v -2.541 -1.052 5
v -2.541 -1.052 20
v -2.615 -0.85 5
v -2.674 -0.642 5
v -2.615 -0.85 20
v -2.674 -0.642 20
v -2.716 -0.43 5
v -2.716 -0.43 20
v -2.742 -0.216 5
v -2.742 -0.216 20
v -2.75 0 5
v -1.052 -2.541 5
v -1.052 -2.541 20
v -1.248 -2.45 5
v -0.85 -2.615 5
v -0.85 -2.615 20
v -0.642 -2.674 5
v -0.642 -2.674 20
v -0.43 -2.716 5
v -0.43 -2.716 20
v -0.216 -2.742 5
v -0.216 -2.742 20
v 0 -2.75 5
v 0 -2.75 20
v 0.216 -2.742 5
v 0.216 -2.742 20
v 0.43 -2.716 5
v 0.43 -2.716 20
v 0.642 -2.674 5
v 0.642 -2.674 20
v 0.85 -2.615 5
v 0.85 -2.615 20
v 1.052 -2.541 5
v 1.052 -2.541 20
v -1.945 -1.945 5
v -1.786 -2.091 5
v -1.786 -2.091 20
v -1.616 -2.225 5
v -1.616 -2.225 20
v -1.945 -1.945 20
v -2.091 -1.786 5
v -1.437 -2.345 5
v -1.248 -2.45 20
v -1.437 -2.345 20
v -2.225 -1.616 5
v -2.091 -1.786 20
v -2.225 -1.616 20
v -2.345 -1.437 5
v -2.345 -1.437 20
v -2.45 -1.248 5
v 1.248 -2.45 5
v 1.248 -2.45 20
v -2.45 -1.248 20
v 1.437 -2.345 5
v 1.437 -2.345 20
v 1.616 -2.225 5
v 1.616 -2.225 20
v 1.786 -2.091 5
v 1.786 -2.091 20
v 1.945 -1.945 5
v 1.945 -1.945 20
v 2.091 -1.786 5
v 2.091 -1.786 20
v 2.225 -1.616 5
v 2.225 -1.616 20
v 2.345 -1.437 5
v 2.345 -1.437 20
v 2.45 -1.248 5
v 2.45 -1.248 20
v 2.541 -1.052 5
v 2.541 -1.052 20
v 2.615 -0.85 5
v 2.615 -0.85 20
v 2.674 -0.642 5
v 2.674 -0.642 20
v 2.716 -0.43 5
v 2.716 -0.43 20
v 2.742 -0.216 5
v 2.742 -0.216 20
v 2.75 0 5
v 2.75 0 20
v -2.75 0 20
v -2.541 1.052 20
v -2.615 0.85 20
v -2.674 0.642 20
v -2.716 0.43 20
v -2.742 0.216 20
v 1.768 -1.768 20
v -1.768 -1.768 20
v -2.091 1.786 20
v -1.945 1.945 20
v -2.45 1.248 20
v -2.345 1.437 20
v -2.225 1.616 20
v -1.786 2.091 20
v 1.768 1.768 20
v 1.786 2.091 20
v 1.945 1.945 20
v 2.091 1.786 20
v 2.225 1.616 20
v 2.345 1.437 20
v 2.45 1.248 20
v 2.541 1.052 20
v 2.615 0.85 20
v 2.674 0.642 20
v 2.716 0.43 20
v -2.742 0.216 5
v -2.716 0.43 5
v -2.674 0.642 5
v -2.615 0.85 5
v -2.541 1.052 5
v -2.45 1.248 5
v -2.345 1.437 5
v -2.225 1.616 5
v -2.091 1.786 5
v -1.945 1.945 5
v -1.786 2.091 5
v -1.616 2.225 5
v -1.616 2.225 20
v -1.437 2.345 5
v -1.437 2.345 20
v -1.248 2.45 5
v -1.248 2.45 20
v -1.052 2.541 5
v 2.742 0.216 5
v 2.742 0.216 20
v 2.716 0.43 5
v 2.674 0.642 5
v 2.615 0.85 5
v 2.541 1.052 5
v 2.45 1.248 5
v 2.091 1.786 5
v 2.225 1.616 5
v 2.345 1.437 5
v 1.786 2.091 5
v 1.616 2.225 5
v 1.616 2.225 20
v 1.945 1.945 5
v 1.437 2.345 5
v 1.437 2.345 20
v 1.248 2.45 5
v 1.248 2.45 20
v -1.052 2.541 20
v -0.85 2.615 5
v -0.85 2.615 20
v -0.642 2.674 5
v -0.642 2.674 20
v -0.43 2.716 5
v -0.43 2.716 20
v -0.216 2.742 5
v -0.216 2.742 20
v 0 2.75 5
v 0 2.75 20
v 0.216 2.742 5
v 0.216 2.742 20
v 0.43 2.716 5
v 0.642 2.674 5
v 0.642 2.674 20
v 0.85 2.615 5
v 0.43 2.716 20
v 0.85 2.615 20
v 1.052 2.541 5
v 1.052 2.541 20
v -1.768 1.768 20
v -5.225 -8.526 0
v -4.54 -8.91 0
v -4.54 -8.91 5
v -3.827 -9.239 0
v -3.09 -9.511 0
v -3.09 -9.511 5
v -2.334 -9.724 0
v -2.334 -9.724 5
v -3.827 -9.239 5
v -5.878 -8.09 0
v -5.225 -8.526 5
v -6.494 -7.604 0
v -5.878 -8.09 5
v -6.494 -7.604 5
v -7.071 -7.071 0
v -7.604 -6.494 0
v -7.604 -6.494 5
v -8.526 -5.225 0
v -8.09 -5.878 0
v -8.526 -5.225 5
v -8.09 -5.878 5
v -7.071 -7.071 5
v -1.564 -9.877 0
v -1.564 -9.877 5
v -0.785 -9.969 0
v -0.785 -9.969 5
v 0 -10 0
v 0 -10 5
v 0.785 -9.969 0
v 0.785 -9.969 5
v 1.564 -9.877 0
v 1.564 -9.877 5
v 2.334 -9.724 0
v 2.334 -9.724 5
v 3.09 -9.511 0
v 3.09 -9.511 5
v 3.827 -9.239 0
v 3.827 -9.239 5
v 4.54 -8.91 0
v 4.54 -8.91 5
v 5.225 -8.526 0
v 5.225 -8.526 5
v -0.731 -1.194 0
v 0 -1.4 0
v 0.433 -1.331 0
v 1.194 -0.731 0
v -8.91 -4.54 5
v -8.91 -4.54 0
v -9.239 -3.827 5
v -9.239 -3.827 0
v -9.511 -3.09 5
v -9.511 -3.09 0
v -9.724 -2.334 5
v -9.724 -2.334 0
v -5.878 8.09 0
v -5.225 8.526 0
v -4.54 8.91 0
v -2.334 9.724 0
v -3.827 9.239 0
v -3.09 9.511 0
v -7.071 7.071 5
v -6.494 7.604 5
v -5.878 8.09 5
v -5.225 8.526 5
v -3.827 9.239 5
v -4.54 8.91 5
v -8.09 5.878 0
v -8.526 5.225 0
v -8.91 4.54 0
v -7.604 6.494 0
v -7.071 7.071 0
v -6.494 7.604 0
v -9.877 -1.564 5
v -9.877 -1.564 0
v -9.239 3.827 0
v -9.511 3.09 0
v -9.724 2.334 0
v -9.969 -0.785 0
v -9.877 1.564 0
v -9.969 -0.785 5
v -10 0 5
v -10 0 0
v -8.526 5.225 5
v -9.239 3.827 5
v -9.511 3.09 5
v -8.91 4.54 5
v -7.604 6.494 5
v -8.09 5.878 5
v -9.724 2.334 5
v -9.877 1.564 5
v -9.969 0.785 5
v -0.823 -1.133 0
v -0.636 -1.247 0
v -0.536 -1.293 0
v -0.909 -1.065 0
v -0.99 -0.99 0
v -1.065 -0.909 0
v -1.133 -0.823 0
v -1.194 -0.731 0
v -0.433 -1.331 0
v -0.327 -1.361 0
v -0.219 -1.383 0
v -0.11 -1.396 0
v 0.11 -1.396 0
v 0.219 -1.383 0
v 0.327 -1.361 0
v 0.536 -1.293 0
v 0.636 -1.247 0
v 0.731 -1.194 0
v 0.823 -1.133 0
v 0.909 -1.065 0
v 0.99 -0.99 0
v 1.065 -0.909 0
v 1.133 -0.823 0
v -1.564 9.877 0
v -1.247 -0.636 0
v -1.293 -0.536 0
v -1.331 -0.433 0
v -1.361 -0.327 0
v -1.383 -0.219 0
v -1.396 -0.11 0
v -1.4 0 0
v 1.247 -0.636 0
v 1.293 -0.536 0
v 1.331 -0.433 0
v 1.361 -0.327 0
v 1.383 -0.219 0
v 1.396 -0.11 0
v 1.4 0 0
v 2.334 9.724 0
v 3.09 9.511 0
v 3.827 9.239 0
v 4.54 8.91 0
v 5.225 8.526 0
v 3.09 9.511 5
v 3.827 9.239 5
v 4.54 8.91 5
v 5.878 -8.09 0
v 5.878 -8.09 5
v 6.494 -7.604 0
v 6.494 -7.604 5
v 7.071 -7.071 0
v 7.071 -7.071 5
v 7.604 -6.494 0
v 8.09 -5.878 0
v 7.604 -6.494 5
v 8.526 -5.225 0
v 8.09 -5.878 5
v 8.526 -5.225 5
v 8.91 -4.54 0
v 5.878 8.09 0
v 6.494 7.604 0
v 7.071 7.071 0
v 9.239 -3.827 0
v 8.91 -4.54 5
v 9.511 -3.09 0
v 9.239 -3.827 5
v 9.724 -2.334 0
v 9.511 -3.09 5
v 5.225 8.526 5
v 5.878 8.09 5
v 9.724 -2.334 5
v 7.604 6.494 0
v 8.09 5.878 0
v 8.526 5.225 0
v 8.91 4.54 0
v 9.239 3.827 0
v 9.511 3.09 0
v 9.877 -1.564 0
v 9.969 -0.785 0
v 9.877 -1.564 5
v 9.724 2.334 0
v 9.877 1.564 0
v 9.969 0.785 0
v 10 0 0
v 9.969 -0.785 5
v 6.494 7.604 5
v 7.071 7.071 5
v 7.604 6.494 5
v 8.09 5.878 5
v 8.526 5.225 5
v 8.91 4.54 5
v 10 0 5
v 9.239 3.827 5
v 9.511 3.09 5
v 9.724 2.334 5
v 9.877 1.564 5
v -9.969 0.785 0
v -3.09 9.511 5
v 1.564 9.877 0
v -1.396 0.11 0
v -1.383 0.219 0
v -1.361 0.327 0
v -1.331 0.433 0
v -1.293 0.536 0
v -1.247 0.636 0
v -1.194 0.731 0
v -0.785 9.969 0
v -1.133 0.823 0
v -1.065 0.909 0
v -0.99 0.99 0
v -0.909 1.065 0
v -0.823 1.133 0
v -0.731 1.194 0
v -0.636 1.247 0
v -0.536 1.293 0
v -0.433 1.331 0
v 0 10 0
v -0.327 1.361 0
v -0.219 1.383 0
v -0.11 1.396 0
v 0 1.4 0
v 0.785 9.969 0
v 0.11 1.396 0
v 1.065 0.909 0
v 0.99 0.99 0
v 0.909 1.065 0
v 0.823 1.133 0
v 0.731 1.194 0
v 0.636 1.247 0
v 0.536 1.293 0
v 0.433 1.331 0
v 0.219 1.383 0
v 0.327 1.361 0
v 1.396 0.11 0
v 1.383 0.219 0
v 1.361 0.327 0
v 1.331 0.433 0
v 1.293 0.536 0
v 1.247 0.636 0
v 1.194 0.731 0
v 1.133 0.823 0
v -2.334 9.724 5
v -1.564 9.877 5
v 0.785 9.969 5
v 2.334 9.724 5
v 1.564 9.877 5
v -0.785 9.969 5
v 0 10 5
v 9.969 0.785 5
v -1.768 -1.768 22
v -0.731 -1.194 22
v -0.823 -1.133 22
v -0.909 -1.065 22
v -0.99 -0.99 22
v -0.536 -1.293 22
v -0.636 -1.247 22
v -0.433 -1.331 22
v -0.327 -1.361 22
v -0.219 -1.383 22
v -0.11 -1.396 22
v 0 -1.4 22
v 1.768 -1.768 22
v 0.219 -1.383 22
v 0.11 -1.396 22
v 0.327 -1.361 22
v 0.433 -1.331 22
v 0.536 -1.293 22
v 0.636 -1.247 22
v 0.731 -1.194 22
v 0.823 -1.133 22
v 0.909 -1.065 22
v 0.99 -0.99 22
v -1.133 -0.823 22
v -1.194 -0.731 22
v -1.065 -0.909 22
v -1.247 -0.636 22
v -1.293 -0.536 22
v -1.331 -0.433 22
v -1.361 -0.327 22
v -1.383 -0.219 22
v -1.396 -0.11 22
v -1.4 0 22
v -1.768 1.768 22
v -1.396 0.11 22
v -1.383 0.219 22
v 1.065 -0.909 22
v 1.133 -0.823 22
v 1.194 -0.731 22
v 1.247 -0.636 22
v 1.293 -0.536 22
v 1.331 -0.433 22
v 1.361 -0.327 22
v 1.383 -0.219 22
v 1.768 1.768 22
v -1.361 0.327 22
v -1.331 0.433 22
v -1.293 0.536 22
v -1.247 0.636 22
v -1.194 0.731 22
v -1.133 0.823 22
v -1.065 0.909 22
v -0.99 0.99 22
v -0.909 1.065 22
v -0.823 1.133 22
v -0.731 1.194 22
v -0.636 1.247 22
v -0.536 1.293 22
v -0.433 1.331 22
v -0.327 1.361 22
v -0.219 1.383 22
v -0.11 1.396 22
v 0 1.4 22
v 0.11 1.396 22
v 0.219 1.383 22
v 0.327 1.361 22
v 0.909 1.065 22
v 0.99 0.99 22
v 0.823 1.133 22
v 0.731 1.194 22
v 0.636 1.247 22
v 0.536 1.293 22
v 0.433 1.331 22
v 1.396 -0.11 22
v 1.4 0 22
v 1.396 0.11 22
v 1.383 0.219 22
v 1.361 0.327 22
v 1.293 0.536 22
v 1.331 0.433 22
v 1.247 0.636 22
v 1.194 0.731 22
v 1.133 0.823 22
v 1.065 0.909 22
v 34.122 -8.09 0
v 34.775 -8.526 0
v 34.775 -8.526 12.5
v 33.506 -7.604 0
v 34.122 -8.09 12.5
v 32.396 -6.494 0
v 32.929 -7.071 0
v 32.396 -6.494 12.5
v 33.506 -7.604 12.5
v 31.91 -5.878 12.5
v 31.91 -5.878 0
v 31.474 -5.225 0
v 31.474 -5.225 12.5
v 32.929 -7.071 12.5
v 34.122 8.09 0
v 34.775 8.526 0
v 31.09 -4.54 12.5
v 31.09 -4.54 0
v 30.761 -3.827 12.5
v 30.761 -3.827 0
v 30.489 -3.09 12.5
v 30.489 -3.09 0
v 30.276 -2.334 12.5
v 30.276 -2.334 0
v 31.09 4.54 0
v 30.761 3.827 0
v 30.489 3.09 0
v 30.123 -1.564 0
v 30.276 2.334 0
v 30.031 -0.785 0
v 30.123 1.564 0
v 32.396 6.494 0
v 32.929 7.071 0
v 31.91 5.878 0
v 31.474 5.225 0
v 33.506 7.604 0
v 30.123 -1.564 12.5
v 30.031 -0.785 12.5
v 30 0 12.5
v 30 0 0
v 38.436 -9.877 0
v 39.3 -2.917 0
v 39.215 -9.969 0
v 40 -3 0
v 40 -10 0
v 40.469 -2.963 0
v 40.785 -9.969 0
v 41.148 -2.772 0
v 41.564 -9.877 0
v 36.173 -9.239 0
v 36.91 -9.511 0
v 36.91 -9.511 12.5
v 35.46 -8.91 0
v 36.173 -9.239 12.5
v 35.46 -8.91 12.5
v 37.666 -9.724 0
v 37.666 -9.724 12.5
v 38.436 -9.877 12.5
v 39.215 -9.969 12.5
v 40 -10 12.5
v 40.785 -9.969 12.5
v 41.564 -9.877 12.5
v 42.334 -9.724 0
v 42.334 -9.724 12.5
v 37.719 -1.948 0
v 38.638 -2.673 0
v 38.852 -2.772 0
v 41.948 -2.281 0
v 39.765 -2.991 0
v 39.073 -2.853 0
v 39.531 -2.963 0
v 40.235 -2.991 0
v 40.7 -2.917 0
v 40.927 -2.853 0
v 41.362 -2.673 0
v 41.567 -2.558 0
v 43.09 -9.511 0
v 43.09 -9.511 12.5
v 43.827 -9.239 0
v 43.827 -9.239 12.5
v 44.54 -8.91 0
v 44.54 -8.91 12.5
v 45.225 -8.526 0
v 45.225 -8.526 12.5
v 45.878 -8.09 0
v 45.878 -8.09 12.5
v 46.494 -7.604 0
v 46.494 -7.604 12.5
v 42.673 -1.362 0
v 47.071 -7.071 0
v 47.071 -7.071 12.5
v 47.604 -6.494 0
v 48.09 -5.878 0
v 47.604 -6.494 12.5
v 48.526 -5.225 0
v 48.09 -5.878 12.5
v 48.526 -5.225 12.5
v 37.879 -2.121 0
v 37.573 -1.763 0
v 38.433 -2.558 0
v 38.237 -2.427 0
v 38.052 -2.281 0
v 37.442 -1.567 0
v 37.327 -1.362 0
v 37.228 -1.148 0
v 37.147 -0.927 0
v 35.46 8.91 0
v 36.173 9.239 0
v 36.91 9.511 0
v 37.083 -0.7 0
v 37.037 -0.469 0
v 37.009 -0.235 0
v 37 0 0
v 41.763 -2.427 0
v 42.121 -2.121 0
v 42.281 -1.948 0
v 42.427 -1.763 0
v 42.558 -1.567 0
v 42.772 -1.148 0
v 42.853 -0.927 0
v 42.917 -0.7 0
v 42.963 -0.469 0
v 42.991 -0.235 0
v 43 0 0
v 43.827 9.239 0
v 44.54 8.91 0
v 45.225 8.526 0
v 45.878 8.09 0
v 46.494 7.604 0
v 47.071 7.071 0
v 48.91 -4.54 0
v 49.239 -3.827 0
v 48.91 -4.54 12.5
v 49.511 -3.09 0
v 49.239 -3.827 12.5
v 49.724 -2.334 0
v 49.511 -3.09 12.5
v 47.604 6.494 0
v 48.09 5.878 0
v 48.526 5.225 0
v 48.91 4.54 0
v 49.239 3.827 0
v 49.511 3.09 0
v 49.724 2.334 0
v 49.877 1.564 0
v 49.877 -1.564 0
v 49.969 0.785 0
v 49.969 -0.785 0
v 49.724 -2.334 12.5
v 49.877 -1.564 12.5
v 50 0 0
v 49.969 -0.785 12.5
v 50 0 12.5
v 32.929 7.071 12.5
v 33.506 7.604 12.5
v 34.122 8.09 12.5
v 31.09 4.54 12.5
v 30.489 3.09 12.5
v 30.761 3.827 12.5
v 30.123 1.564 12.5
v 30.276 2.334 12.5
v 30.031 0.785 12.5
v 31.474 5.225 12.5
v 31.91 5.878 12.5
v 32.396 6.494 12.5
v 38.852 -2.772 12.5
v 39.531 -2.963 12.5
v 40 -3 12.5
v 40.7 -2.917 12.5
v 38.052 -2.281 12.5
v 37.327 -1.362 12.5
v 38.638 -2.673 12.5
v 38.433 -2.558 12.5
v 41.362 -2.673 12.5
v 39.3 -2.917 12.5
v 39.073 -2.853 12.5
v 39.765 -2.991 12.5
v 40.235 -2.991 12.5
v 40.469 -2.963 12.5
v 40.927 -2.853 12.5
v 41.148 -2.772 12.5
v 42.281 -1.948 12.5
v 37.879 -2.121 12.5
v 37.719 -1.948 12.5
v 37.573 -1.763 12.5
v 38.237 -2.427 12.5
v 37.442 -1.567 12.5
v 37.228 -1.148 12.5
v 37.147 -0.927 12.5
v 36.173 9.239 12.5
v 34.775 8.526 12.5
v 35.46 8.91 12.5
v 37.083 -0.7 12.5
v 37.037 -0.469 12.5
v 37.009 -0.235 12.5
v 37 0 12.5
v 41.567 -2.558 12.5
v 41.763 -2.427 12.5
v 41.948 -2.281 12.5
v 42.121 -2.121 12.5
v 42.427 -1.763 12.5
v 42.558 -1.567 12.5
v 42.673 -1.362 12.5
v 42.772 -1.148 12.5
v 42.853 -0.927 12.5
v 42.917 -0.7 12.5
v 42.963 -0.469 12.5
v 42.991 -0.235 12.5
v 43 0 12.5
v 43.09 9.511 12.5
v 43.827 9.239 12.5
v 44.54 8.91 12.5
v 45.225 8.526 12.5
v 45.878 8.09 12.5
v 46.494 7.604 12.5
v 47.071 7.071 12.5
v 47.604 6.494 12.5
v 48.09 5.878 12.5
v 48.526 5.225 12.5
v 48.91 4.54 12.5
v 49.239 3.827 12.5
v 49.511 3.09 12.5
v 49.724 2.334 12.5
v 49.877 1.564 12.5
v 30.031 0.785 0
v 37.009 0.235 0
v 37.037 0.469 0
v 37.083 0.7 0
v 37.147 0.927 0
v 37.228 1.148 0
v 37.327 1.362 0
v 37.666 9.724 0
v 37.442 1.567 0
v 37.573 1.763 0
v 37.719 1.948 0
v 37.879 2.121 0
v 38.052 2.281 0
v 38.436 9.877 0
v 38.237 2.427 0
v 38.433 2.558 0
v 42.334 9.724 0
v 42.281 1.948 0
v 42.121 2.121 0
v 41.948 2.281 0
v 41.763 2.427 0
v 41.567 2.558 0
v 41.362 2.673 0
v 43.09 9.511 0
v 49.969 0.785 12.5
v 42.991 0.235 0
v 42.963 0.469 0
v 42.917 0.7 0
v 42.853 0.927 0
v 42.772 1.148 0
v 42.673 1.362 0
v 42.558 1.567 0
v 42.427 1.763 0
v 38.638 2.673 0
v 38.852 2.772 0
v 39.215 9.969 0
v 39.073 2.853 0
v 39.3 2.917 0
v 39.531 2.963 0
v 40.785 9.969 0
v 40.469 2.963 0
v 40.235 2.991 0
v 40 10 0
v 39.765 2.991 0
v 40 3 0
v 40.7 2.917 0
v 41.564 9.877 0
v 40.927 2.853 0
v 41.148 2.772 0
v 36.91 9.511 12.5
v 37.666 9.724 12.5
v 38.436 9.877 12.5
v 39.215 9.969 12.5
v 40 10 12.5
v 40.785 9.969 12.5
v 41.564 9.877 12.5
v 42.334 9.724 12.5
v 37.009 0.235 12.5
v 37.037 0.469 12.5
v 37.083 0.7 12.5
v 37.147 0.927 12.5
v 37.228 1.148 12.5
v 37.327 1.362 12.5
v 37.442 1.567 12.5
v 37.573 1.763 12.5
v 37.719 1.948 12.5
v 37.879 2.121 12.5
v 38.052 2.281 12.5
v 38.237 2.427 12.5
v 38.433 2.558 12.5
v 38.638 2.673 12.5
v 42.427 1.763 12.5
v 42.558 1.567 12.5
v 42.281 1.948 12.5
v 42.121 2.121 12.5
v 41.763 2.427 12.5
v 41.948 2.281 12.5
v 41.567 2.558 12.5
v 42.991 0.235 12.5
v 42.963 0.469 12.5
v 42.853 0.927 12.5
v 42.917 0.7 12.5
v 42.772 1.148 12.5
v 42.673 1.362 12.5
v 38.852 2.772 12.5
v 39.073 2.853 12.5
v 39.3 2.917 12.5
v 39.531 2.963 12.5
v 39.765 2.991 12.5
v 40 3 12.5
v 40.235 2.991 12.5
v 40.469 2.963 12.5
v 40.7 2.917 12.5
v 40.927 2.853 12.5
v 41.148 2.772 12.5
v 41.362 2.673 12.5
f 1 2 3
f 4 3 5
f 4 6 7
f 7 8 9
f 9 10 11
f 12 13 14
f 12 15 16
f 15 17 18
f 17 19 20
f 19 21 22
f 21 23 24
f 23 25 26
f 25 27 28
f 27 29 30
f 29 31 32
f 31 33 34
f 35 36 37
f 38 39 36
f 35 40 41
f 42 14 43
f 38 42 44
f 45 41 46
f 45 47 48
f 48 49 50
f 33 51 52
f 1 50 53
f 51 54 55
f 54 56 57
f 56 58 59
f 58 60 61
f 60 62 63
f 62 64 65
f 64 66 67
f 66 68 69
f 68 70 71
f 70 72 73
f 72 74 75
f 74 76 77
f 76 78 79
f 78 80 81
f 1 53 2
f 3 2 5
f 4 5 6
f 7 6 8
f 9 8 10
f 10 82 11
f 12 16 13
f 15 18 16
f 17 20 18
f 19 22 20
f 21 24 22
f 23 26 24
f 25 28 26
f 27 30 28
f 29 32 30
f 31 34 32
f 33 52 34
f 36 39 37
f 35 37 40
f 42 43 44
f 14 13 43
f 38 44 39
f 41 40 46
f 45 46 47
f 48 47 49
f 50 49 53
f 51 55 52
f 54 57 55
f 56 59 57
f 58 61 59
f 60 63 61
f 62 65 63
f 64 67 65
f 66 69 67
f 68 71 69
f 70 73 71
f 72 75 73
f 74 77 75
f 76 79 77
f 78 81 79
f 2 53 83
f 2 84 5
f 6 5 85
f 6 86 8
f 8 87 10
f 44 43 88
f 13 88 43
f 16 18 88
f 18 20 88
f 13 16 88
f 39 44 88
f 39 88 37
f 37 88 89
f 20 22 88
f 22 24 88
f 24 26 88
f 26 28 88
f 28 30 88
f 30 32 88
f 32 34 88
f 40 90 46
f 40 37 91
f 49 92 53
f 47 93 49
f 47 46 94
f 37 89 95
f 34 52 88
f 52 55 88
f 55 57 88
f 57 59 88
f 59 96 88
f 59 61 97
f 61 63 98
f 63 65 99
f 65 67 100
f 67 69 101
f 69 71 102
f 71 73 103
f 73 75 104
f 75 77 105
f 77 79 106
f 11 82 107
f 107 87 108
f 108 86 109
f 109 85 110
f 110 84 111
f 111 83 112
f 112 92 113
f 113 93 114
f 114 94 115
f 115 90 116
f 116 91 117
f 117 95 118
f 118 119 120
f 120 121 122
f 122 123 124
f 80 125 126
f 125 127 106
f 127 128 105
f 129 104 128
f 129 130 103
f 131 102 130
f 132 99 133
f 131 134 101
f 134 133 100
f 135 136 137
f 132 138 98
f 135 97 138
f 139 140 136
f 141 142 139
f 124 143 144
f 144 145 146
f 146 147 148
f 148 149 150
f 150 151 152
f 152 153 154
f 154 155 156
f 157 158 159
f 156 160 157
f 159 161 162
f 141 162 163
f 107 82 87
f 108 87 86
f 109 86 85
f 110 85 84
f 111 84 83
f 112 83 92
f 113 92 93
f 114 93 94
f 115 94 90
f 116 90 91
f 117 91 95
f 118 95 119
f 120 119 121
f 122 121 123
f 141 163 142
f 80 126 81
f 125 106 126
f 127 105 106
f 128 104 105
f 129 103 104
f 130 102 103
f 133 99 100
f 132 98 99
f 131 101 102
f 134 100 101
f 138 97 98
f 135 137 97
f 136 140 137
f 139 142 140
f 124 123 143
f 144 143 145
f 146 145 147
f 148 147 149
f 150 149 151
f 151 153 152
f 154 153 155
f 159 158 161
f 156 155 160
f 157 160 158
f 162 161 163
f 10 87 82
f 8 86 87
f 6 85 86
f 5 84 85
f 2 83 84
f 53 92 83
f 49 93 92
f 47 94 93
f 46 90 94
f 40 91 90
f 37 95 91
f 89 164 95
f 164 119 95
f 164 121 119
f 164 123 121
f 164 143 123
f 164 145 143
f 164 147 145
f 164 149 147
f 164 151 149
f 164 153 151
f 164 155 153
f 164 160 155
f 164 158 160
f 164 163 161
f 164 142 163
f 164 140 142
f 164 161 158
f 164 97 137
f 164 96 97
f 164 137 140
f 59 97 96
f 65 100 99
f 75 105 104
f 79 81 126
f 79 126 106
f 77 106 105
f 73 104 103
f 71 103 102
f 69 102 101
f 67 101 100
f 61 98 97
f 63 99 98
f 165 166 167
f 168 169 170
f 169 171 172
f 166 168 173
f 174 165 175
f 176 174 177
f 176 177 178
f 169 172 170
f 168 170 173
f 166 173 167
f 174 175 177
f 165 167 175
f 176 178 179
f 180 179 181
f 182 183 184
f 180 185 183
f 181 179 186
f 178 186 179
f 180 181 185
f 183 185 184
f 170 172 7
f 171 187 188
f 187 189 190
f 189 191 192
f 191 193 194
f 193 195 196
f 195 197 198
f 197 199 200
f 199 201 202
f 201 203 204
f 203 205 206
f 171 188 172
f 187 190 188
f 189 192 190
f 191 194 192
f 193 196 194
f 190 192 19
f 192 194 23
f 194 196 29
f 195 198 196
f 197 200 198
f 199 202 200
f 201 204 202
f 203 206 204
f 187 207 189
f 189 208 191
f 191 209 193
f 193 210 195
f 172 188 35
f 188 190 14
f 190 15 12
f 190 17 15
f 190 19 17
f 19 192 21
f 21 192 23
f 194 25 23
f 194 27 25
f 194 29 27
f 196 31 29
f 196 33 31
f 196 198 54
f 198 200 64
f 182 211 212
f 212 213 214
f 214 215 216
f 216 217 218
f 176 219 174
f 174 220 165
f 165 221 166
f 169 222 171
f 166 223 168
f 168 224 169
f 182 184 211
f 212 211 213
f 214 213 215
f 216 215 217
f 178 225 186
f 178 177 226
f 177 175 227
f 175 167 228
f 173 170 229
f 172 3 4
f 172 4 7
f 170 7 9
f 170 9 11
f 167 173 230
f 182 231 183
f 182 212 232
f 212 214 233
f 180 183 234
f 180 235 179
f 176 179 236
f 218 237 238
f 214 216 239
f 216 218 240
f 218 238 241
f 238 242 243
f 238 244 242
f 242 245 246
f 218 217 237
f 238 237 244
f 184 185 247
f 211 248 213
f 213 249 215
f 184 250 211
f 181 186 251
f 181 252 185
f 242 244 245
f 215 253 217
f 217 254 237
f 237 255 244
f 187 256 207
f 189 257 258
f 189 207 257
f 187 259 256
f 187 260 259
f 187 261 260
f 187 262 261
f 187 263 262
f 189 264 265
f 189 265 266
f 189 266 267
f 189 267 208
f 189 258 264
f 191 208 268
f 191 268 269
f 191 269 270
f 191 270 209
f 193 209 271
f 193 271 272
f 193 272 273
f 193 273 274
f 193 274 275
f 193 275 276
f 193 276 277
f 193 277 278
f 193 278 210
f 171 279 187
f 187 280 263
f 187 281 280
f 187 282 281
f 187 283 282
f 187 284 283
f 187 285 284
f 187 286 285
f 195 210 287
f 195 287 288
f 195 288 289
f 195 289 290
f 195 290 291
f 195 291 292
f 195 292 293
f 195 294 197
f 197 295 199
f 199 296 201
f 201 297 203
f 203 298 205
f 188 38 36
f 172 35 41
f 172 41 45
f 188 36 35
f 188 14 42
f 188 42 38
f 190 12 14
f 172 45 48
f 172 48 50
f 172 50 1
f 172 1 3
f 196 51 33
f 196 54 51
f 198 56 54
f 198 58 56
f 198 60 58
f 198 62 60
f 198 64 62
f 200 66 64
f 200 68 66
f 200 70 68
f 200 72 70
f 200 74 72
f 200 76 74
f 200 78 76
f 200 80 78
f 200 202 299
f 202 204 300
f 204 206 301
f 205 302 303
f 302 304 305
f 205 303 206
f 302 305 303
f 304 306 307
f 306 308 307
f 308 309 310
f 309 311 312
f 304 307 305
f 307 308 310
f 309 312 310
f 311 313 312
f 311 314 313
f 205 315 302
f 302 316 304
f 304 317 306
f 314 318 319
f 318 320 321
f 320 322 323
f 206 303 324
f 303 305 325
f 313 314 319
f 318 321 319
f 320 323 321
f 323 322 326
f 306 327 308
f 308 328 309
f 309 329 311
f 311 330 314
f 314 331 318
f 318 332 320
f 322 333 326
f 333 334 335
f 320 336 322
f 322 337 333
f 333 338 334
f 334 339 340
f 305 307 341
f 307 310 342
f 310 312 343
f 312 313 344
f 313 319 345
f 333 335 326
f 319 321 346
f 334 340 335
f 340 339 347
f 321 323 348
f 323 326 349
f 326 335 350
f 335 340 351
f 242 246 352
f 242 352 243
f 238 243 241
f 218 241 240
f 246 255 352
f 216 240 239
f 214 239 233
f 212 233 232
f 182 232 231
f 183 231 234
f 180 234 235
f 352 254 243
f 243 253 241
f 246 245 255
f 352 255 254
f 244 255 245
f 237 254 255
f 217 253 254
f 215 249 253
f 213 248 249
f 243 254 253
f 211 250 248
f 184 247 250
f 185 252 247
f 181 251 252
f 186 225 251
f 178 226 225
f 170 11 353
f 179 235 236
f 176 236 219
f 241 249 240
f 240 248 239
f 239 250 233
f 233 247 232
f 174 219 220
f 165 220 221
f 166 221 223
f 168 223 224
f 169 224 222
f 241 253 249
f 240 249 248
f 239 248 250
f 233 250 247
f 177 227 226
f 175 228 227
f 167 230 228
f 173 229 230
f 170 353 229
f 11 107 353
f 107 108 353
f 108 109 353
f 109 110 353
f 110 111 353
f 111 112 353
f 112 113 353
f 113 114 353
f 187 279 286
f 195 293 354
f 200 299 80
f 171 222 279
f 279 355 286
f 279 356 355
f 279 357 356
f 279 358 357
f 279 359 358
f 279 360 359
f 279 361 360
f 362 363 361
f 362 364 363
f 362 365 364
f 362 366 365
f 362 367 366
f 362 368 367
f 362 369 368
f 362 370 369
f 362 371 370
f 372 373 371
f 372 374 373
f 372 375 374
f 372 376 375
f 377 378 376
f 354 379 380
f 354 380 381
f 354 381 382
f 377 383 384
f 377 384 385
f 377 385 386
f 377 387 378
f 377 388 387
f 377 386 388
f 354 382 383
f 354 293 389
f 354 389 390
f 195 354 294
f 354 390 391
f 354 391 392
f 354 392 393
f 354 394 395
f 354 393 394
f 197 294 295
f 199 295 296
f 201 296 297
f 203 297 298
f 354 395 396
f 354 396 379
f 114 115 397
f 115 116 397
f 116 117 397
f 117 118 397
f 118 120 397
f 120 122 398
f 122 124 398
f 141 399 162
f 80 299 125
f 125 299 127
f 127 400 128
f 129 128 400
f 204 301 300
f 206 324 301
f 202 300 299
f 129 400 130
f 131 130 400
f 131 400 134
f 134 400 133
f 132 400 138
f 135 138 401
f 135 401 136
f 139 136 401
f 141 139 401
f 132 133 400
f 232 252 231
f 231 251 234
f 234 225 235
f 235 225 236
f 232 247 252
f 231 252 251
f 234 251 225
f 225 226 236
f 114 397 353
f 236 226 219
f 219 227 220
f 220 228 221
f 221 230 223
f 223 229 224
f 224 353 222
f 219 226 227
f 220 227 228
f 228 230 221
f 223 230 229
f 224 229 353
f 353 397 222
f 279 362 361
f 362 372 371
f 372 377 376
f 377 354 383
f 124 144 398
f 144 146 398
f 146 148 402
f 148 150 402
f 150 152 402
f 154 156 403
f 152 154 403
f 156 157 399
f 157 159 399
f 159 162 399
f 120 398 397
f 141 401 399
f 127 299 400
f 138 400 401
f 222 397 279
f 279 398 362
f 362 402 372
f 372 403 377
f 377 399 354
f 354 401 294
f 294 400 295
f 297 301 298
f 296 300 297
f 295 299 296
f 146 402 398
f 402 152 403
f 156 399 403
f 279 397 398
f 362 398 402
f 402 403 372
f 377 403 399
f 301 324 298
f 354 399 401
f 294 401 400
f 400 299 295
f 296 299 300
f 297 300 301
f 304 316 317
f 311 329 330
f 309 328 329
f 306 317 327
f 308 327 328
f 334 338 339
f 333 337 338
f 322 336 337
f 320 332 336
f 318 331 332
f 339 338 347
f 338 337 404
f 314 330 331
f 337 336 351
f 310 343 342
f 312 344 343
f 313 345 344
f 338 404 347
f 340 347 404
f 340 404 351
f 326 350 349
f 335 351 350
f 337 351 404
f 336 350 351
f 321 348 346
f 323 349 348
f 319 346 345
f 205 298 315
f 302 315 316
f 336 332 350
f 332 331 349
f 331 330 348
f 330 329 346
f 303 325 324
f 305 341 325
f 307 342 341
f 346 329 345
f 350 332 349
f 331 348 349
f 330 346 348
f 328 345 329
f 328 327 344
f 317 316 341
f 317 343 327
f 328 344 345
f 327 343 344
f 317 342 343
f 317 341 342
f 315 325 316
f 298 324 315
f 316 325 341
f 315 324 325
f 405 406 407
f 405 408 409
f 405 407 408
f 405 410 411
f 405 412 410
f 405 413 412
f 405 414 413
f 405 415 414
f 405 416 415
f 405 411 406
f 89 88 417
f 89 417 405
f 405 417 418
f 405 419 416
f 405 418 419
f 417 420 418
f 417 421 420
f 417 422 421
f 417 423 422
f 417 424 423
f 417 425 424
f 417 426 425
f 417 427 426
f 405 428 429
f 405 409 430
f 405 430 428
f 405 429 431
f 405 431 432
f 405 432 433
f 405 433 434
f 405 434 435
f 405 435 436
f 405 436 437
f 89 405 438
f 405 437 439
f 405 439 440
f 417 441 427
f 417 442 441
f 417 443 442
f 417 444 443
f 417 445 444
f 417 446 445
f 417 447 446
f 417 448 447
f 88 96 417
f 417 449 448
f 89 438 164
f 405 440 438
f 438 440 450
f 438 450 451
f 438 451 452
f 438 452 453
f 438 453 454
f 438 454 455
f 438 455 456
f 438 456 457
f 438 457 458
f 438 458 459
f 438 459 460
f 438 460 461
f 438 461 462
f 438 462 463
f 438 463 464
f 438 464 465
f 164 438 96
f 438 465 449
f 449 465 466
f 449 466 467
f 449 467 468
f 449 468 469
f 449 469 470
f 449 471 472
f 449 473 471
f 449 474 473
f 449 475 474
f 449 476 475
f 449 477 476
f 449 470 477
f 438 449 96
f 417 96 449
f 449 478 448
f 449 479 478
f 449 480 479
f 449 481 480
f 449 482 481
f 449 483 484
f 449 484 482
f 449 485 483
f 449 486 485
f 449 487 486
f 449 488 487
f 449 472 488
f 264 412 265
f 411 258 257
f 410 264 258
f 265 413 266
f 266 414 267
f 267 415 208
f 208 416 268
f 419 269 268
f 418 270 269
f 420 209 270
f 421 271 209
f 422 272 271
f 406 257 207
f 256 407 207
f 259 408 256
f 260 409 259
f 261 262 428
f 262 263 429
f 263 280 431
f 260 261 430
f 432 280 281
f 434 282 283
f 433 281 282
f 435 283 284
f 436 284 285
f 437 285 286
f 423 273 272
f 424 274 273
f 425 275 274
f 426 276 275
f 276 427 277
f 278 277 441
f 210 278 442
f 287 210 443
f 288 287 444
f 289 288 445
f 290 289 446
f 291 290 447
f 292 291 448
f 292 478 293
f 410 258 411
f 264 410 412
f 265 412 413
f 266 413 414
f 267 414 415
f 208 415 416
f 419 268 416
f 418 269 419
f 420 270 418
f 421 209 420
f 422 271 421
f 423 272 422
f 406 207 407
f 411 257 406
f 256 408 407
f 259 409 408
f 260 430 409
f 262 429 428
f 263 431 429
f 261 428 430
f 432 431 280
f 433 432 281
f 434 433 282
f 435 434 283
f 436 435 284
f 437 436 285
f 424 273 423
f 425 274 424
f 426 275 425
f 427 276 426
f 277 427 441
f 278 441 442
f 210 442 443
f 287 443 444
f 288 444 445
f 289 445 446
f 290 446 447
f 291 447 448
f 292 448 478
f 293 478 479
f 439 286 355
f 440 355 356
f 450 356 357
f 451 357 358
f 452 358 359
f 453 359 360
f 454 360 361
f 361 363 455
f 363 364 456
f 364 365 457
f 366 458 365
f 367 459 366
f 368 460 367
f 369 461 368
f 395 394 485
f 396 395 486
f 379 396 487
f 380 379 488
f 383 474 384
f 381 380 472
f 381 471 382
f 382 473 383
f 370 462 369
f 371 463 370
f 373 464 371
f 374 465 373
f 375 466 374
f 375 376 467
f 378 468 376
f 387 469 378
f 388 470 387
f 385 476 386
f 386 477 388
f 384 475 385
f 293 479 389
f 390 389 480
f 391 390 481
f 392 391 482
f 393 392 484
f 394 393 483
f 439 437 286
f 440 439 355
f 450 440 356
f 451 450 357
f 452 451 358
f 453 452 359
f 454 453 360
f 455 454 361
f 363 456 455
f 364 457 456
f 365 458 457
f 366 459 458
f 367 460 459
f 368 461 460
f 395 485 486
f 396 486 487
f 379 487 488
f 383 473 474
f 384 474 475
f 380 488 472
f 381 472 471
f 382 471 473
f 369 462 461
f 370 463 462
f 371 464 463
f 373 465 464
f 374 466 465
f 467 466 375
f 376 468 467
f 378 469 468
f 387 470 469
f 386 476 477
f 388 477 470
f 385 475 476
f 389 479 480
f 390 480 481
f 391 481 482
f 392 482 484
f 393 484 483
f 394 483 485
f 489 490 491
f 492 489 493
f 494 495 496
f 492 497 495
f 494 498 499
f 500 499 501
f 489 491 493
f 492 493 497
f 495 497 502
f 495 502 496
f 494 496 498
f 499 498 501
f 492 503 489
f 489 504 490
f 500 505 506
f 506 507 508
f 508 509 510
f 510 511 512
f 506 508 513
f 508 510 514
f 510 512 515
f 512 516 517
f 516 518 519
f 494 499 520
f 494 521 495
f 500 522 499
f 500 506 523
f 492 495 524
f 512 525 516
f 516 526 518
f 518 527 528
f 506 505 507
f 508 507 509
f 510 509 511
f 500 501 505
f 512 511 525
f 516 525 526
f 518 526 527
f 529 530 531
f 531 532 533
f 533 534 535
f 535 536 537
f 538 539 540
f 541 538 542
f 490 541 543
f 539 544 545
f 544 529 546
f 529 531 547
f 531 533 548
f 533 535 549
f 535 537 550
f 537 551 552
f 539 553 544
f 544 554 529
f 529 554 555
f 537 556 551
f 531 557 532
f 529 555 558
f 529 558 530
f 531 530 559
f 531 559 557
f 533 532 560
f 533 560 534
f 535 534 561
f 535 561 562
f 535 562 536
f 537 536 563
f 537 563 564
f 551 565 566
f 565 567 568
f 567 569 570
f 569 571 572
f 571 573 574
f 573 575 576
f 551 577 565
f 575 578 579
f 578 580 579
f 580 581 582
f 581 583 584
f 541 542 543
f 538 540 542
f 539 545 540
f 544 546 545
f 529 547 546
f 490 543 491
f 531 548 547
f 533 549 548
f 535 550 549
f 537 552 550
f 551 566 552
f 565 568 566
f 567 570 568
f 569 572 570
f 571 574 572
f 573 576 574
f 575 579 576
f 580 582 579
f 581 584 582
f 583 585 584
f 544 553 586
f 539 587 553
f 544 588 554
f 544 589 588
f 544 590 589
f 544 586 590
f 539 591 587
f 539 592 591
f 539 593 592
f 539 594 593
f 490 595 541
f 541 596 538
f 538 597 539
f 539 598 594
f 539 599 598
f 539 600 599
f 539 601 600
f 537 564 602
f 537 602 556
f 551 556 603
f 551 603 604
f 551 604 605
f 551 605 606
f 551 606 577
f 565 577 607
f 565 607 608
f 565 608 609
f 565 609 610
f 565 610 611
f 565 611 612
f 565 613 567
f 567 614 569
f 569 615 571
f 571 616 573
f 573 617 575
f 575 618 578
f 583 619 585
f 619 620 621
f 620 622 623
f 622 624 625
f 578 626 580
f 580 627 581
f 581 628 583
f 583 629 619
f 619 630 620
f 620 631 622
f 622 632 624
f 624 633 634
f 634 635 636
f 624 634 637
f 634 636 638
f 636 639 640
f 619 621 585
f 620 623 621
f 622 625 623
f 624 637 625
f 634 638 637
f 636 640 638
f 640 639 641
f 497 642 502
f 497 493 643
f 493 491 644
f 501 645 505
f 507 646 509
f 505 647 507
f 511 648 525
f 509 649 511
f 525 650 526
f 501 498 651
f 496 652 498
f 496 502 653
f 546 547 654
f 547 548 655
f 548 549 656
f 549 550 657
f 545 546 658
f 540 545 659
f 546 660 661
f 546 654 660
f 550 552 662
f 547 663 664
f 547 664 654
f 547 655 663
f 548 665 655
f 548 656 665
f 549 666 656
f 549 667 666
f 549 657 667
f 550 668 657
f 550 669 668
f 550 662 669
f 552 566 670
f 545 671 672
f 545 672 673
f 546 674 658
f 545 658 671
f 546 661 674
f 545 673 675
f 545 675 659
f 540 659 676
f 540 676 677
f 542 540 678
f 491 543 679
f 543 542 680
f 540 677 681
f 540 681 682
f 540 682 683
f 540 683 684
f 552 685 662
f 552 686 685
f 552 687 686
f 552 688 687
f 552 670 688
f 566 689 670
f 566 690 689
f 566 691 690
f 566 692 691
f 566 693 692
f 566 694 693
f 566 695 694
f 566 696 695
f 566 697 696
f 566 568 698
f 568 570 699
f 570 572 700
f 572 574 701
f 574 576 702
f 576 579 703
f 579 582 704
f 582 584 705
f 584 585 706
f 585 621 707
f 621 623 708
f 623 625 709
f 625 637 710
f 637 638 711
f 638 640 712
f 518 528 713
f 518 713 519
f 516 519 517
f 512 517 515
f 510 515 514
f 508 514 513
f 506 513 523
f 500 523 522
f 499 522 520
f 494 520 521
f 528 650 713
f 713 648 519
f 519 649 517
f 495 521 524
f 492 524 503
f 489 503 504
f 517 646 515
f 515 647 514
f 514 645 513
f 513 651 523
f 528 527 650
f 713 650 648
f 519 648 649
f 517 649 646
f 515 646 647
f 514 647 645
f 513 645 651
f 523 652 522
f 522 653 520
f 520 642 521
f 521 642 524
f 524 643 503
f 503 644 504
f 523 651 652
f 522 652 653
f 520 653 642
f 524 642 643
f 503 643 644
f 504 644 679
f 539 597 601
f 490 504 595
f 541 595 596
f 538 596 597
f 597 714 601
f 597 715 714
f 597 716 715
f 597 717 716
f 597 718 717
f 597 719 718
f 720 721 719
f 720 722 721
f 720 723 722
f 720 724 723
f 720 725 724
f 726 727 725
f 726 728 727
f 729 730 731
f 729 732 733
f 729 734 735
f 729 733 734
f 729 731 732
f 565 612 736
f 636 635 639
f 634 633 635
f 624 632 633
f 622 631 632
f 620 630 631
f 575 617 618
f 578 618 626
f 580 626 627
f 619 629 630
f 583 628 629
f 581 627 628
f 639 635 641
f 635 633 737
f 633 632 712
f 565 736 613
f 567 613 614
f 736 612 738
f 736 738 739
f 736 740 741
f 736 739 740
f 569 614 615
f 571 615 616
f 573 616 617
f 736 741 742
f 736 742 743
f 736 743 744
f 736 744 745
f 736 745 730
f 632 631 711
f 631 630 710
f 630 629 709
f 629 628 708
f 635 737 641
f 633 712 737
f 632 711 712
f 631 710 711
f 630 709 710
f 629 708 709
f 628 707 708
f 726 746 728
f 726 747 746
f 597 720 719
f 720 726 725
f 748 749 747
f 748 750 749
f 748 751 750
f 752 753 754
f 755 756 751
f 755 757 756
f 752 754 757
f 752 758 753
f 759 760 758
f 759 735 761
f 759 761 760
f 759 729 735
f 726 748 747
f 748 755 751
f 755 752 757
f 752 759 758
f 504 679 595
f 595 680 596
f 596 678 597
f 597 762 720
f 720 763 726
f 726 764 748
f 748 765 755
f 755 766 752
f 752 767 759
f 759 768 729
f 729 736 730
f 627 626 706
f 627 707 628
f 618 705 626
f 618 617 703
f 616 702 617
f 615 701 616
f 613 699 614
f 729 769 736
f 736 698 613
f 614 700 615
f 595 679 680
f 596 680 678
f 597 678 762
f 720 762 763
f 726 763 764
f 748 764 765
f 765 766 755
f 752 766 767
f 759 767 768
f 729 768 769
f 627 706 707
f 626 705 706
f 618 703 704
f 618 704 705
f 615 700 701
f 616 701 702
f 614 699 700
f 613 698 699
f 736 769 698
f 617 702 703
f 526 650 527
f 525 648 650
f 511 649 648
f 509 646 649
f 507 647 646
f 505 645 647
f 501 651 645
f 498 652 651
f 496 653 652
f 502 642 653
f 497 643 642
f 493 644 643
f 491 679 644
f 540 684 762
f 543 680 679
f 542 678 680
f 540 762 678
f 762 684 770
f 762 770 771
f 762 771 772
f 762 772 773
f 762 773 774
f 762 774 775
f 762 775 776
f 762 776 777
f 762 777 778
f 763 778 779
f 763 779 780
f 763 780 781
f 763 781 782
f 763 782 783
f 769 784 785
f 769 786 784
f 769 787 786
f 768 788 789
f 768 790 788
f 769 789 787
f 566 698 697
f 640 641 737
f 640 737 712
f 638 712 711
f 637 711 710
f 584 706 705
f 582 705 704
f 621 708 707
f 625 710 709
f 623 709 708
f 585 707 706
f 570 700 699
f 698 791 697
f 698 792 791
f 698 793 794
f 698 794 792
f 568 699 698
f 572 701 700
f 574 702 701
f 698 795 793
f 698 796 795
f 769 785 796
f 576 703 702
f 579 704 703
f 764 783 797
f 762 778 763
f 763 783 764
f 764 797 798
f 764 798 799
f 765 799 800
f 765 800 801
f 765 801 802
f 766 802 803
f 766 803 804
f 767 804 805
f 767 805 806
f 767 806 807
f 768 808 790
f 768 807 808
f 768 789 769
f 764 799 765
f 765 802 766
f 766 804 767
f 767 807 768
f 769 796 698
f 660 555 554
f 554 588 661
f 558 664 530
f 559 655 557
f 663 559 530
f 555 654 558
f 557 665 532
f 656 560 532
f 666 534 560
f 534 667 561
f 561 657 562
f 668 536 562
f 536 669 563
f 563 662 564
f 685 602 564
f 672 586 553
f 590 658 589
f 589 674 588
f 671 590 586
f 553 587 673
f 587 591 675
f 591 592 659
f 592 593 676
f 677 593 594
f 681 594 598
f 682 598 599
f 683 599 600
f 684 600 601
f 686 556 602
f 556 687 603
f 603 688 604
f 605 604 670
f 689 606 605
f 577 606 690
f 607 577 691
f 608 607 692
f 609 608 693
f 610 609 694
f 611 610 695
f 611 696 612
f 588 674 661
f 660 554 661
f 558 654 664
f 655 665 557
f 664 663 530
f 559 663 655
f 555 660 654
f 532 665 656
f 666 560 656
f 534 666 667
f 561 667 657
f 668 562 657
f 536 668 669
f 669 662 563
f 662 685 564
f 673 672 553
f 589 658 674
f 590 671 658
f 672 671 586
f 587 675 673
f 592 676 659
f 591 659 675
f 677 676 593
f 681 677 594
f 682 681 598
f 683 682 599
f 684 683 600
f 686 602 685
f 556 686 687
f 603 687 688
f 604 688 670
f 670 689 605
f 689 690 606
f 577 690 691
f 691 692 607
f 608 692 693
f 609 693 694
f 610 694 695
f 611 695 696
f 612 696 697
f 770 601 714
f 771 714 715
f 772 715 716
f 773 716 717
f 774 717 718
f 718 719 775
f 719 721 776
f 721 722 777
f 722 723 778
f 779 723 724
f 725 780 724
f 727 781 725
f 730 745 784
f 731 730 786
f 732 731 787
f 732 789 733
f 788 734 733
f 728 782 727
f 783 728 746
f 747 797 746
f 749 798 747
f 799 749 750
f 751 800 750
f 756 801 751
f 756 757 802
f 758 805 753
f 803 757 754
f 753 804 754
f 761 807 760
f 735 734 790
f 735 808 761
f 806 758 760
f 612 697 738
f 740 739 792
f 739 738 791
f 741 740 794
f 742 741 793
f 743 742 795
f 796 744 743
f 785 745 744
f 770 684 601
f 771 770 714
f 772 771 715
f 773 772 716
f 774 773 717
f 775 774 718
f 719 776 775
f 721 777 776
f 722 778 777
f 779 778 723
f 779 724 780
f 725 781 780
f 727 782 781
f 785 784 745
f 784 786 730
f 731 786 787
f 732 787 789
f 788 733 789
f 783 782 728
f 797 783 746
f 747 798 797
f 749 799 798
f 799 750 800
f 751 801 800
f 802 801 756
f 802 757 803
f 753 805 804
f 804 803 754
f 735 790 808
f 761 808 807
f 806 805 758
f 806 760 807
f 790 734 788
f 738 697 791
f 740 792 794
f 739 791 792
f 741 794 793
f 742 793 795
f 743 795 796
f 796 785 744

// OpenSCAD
// Title: Axle with Inscribed Square End
// Description: A parametric axle with a square head that is perfectly inscribed within the axle's diameter.
// Author: AI Assistant
// Date: 2023-10-28
// License: MIT

/*
 * =====================================================================
 * Параметры для настройки (Parameters for Customization)
 * =====================================================================
 */

// --- Параметры оси ---
axle_diameter = 5.5;    // [mm] Диаметр основной цилиндрической части.
axle_stop_diameter = 20;

axle_length = 20;   // [mm] Длина цилиндрической части.

// --- Параметры головки ---
// Длина стороны квадрата рассчитывается так, чтобы он был вписан в окружность оси.
// Диагональ квадрата будет равна диаметру оси.
square_head_side = 5 / sqrt(2); 
square_head_height = 2; // [mm] Высота (толщина) квадратной головки.

// --- Параметры отверстия ---
hole_diameter = 2.8;  // [mm] Диаметр сквозного центрального отверстия.

// --- Качество модели ---
$fn = 80; // Количество сегментов для гладких окружностей.

/*
 * =====================================================================
 * Основной код (Main Code)
 * =====================================================================
 */
difference() {
    union() {
        // 1. Ось
        cylinder(d = axle_diameter, h = axle_length);
        cylinder(d=axle_stop_diameter, h=5);
        
        // 2. Квадратная головка
        translate([0, 0, axle_length + square_head_height / 2]) {
            cube([square_head_side, square_head_side, square_head_height], center = true);
        }
    }
    
    // 3. Отверстие
    total_length = axle_length + square_head_height;
    translate([0, 0, -1]) {
        cylinder(d = hole_diameter, h = total_length + 2);
    }
}

translate([40,0,0])
difference() {
        
    cylinder(d=axle_stop_diameter, h=7+5.5);
    
    // 3. Отверстие
    total_length = axle_length;
    translate([0, 0, -1]) {
        cylinder(d = 6, h = total_length + 2);
    }
}
